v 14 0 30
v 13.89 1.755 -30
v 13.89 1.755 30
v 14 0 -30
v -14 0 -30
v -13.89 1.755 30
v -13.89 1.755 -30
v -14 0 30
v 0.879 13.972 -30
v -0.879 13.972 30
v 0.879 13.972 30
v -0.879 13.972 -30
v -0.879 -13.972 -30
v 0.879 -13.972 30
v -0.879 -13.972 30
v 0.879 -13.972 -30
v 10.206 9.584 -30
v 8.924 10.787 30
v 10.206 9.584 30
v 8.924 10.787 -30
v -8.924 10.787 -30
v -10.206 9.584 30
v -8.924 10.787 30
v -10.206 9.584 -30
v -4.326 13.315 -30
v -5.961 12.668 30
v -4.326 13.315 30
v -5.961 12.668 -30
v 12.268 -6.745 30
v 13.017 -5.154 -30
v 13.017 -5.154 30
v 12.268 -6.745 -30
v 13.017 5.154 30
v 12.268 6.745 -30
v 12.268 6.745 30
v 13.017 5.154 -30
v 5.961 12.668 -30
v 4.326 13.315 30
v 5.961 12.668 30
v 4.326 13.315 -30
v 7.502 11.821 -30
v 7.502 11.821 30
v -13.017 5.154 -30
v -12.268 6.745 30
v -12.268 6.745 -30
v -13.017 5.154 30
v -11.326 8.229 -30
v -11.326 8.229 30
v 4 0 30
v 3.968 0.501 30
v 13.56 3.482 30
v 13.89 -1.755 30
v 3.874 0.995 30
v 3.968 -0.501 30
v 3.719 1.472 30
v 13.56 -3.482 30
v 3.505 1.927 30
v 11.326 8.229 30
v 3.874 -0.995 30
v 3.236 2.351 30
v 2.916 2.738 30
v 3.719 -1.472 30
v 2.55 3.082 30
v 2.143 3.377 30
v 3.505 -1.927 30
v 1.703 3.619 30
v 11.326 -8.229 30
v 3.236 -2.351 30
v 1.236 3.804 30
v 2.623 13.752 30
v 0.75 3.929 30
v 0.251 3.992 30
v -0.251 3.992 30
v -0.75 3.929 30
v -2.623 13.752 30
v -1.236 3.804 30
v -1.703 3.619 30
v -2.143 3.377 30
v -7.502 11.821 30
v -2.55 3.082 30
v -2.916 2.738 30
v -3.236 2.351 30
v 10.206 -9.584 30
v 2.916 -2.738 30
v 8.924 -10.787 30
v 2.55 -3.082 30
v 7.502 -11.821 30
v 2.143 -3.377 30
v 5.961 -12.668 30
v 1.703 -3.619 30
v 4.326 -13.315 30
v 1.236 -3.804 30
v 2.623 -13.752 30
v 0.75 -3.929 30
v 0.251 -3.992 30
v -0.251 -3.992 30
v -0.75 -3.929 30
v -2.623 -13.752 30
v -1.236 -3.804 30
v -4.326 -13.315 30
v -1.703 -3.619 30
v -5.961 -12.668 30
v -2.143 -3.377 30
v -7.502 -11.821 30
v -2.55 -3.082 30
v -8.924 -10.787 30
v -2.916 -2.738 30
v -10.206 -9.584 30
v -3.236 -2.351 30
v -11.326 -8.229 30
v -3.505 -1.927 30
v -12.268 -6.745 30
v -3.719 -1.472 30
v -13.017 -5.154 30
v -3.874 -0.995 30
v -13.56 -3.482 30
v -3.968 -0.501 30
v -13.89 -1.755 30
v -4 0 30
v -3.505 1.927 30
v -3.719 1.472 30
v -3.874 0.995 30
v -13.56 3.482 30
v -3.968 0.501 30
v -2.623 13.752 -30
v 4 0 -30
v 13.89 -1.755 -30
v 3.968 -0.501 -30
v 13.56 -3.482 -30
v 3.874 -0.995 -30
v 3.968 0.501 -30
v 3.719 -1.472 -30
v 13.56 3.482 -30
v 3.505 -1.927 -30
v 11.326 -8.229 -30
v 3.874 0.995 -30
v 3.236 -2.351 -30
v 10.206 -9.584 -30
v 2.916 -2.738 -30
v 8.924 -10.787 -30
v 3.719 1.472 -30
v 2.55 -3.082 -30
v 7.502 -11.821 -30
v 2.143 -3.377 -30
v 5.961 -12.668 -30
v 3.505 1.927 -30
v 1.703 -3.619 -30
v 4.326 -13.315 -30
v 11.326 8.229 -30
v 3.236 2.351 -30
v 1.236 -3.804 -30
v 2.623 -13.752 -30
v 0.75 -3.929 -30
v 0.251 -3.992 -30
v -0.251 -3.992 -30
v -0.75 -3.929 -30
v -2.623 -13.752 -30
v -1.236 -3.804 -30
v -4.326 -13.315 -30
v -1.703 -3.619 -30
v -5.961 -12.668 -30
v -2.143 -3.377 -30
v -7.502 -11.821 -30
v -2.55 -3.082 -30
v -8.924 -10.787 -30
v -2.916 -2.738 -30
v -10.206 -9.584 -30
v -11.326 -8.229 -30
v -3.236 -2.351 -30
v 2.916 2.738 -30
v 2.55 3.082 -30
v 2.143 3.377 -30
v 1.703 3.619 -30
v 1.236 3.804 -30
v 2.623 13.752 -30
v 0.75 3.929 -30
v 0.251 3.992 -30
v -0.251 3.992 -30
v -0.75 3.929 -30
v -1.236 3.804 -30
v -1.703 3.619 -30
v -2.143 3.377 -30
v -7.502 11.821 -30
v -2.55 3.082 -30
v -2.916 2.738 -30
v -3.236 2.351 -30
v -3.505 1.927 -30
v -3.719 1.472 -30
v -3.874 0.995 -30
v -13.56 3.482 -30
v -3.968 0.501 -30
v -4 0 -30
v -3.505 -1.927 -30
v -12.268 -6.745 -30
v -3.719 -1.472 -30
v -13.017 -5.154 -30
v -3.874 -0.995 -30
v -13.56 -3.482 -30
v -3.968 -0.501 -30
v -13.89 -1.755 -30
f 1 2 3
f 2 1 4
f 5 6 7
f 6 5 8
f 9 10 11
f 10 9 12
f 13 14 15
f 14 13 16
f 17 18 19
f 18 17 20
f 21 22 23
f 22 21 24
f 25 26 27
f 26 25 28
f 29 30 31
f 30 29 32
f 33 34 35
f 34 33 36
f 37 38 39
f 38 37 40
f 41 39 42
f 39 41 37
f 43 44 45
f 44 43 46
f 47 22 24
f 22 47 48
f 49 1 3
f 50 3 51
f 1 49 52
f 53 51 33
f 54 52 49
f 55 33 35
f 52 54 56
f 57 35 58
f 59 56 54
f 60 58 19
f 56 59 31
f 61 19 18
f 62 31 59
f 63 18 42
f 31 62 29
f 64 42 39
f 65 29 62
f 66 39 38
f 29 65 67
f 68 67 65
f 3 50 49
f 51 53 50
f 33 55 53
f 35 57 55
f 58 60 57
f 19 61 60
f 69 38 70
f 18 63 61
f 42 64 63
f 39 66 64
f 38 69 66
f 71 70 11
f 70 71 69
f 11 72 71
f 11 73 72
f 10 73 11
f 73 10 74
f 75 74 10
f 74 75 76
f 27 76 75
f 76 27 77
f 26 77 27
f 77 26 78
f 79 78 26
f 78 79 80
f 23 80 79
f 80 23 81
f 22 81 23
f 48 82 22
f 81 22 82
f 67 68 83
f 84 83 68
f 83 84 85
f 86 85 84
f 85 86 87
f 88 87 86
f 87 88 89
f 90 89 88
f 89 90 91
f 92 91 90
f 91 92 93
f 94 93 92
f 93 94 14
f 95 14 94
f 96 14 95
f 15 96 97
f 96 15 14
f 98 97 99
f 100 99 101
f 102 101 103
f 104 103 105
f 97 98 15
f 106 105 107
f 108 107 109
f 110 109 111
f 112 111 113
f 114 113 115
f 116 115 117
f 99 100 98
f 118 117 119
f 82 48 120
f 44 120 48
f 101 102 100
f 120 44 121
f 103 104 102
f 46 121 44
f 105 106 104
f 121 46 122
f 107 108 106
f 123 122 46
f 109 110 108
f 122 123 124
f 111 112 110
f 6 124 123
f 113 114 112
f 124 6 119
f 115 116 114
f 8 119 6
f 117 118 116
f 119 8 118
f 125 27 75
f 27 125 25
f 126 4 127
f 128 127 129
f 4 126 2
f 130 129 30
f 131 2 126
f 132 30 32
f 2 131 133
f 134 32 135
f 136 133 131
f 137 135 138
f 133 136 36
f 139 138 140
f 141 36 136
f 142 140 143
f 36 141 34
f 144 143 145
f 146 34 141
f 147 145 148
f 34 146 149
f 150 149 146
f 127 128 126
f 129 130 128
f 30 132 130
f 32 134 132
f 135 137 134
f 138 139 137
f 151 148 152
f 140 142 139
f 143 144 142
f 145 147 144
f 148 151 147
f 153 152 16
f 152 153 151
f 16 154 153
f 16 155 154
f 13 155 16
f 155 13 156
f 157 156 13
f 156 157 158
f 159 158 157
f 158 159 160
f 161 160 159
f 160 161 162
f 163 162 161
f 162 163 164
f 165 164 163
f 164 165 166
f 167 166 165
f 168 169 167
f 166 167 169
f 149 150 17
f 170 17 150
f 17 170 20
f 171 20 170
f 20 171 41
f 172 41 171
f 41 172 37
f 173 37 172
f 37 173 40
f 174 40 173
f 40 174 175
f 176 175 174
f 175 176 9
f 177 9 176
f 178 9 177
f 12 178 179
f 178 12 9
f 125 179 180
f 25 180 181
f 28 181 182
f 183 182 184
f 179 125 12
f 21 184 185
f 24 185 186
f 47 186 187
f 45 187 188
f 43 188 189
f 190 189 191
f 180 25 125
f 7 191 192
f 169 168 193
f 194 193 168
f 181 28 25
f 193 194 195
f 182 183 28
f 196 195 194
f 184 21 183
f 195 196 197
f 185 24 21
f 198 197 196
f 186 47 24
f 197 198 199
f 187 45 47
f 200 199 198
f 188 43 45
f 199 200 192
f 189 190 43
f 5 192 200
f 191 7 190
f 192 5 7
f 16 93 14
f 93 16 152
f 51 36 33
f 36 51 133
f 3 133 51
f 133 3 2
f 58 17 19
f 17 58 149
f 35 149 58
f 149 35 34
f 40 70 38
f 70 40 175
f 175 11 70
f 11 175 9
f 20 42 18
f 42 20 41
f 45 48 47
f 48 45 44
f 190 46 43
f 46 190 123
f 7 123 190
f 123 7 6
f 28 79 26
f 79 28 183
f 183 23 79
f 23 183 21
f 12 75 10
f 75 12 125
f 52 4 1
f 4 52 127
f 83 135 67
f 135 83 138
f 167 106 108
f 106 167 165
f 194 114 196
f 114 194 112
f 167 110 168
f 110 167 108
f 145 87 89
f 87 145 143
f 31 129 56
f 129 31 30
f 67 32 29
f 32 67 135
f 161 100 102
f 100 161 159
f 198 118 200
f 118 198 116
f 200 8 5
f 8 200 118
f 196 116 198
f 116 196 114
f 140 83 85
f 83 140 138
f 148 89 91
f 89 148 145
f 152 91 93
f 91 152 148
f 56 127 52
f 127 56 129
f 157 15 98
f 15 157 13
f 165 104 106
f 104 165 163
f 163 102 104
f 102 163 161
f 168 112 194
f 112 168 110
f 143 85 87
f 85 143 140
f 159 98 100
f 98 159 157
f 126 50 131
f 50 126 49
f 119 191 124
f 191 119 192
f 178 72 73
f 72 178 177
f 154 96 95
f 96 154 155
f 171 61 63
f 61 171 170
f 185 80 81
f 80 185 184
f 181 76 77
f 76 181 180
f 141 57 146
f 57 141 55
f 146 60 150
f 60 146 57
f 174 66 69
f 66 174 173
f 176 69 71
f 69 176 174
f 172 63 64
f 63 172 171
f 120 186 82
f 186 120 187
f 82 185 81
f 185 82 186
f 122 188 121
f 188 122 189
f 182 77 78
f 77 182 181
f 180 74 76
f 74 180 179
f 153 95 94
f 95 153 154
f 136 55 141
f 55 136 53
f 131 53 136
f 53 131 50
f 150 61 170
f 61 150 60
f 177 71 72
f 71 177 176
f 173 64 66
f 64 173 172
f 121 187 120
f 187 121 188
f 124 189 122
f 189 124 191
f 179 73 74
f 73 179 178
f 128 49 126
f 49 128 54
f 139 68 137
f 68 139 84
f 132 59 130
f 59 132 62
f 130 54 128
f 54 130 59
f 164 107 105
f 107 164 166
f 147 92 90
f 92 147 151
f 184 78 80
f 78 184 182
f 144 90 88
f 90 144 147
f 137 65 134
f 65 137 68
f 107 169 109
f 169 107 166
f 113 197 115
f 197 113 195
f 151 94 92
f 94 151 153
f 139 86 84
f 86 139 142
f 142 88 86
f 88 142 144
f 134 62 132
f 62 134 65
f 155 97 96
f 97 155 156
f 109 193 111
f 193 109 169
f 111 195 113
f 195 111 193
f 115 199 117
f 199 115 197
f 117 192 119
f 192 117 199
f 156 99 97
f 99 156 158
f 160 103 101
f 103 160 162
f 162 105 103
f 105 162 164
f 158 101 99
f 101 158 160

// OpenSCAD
$fn = 50;


difference() {
	union() {
		translate(v = [0, 0, -30.0000000000]) {
			cylinder(h = 60, r = 14.0000000000);
		}
	}
	union() {
		translate(v = [0, 0, -100.0000000000]) {
			cylinder(h = 200, r = 4.0000000000);
		}
	}
}
